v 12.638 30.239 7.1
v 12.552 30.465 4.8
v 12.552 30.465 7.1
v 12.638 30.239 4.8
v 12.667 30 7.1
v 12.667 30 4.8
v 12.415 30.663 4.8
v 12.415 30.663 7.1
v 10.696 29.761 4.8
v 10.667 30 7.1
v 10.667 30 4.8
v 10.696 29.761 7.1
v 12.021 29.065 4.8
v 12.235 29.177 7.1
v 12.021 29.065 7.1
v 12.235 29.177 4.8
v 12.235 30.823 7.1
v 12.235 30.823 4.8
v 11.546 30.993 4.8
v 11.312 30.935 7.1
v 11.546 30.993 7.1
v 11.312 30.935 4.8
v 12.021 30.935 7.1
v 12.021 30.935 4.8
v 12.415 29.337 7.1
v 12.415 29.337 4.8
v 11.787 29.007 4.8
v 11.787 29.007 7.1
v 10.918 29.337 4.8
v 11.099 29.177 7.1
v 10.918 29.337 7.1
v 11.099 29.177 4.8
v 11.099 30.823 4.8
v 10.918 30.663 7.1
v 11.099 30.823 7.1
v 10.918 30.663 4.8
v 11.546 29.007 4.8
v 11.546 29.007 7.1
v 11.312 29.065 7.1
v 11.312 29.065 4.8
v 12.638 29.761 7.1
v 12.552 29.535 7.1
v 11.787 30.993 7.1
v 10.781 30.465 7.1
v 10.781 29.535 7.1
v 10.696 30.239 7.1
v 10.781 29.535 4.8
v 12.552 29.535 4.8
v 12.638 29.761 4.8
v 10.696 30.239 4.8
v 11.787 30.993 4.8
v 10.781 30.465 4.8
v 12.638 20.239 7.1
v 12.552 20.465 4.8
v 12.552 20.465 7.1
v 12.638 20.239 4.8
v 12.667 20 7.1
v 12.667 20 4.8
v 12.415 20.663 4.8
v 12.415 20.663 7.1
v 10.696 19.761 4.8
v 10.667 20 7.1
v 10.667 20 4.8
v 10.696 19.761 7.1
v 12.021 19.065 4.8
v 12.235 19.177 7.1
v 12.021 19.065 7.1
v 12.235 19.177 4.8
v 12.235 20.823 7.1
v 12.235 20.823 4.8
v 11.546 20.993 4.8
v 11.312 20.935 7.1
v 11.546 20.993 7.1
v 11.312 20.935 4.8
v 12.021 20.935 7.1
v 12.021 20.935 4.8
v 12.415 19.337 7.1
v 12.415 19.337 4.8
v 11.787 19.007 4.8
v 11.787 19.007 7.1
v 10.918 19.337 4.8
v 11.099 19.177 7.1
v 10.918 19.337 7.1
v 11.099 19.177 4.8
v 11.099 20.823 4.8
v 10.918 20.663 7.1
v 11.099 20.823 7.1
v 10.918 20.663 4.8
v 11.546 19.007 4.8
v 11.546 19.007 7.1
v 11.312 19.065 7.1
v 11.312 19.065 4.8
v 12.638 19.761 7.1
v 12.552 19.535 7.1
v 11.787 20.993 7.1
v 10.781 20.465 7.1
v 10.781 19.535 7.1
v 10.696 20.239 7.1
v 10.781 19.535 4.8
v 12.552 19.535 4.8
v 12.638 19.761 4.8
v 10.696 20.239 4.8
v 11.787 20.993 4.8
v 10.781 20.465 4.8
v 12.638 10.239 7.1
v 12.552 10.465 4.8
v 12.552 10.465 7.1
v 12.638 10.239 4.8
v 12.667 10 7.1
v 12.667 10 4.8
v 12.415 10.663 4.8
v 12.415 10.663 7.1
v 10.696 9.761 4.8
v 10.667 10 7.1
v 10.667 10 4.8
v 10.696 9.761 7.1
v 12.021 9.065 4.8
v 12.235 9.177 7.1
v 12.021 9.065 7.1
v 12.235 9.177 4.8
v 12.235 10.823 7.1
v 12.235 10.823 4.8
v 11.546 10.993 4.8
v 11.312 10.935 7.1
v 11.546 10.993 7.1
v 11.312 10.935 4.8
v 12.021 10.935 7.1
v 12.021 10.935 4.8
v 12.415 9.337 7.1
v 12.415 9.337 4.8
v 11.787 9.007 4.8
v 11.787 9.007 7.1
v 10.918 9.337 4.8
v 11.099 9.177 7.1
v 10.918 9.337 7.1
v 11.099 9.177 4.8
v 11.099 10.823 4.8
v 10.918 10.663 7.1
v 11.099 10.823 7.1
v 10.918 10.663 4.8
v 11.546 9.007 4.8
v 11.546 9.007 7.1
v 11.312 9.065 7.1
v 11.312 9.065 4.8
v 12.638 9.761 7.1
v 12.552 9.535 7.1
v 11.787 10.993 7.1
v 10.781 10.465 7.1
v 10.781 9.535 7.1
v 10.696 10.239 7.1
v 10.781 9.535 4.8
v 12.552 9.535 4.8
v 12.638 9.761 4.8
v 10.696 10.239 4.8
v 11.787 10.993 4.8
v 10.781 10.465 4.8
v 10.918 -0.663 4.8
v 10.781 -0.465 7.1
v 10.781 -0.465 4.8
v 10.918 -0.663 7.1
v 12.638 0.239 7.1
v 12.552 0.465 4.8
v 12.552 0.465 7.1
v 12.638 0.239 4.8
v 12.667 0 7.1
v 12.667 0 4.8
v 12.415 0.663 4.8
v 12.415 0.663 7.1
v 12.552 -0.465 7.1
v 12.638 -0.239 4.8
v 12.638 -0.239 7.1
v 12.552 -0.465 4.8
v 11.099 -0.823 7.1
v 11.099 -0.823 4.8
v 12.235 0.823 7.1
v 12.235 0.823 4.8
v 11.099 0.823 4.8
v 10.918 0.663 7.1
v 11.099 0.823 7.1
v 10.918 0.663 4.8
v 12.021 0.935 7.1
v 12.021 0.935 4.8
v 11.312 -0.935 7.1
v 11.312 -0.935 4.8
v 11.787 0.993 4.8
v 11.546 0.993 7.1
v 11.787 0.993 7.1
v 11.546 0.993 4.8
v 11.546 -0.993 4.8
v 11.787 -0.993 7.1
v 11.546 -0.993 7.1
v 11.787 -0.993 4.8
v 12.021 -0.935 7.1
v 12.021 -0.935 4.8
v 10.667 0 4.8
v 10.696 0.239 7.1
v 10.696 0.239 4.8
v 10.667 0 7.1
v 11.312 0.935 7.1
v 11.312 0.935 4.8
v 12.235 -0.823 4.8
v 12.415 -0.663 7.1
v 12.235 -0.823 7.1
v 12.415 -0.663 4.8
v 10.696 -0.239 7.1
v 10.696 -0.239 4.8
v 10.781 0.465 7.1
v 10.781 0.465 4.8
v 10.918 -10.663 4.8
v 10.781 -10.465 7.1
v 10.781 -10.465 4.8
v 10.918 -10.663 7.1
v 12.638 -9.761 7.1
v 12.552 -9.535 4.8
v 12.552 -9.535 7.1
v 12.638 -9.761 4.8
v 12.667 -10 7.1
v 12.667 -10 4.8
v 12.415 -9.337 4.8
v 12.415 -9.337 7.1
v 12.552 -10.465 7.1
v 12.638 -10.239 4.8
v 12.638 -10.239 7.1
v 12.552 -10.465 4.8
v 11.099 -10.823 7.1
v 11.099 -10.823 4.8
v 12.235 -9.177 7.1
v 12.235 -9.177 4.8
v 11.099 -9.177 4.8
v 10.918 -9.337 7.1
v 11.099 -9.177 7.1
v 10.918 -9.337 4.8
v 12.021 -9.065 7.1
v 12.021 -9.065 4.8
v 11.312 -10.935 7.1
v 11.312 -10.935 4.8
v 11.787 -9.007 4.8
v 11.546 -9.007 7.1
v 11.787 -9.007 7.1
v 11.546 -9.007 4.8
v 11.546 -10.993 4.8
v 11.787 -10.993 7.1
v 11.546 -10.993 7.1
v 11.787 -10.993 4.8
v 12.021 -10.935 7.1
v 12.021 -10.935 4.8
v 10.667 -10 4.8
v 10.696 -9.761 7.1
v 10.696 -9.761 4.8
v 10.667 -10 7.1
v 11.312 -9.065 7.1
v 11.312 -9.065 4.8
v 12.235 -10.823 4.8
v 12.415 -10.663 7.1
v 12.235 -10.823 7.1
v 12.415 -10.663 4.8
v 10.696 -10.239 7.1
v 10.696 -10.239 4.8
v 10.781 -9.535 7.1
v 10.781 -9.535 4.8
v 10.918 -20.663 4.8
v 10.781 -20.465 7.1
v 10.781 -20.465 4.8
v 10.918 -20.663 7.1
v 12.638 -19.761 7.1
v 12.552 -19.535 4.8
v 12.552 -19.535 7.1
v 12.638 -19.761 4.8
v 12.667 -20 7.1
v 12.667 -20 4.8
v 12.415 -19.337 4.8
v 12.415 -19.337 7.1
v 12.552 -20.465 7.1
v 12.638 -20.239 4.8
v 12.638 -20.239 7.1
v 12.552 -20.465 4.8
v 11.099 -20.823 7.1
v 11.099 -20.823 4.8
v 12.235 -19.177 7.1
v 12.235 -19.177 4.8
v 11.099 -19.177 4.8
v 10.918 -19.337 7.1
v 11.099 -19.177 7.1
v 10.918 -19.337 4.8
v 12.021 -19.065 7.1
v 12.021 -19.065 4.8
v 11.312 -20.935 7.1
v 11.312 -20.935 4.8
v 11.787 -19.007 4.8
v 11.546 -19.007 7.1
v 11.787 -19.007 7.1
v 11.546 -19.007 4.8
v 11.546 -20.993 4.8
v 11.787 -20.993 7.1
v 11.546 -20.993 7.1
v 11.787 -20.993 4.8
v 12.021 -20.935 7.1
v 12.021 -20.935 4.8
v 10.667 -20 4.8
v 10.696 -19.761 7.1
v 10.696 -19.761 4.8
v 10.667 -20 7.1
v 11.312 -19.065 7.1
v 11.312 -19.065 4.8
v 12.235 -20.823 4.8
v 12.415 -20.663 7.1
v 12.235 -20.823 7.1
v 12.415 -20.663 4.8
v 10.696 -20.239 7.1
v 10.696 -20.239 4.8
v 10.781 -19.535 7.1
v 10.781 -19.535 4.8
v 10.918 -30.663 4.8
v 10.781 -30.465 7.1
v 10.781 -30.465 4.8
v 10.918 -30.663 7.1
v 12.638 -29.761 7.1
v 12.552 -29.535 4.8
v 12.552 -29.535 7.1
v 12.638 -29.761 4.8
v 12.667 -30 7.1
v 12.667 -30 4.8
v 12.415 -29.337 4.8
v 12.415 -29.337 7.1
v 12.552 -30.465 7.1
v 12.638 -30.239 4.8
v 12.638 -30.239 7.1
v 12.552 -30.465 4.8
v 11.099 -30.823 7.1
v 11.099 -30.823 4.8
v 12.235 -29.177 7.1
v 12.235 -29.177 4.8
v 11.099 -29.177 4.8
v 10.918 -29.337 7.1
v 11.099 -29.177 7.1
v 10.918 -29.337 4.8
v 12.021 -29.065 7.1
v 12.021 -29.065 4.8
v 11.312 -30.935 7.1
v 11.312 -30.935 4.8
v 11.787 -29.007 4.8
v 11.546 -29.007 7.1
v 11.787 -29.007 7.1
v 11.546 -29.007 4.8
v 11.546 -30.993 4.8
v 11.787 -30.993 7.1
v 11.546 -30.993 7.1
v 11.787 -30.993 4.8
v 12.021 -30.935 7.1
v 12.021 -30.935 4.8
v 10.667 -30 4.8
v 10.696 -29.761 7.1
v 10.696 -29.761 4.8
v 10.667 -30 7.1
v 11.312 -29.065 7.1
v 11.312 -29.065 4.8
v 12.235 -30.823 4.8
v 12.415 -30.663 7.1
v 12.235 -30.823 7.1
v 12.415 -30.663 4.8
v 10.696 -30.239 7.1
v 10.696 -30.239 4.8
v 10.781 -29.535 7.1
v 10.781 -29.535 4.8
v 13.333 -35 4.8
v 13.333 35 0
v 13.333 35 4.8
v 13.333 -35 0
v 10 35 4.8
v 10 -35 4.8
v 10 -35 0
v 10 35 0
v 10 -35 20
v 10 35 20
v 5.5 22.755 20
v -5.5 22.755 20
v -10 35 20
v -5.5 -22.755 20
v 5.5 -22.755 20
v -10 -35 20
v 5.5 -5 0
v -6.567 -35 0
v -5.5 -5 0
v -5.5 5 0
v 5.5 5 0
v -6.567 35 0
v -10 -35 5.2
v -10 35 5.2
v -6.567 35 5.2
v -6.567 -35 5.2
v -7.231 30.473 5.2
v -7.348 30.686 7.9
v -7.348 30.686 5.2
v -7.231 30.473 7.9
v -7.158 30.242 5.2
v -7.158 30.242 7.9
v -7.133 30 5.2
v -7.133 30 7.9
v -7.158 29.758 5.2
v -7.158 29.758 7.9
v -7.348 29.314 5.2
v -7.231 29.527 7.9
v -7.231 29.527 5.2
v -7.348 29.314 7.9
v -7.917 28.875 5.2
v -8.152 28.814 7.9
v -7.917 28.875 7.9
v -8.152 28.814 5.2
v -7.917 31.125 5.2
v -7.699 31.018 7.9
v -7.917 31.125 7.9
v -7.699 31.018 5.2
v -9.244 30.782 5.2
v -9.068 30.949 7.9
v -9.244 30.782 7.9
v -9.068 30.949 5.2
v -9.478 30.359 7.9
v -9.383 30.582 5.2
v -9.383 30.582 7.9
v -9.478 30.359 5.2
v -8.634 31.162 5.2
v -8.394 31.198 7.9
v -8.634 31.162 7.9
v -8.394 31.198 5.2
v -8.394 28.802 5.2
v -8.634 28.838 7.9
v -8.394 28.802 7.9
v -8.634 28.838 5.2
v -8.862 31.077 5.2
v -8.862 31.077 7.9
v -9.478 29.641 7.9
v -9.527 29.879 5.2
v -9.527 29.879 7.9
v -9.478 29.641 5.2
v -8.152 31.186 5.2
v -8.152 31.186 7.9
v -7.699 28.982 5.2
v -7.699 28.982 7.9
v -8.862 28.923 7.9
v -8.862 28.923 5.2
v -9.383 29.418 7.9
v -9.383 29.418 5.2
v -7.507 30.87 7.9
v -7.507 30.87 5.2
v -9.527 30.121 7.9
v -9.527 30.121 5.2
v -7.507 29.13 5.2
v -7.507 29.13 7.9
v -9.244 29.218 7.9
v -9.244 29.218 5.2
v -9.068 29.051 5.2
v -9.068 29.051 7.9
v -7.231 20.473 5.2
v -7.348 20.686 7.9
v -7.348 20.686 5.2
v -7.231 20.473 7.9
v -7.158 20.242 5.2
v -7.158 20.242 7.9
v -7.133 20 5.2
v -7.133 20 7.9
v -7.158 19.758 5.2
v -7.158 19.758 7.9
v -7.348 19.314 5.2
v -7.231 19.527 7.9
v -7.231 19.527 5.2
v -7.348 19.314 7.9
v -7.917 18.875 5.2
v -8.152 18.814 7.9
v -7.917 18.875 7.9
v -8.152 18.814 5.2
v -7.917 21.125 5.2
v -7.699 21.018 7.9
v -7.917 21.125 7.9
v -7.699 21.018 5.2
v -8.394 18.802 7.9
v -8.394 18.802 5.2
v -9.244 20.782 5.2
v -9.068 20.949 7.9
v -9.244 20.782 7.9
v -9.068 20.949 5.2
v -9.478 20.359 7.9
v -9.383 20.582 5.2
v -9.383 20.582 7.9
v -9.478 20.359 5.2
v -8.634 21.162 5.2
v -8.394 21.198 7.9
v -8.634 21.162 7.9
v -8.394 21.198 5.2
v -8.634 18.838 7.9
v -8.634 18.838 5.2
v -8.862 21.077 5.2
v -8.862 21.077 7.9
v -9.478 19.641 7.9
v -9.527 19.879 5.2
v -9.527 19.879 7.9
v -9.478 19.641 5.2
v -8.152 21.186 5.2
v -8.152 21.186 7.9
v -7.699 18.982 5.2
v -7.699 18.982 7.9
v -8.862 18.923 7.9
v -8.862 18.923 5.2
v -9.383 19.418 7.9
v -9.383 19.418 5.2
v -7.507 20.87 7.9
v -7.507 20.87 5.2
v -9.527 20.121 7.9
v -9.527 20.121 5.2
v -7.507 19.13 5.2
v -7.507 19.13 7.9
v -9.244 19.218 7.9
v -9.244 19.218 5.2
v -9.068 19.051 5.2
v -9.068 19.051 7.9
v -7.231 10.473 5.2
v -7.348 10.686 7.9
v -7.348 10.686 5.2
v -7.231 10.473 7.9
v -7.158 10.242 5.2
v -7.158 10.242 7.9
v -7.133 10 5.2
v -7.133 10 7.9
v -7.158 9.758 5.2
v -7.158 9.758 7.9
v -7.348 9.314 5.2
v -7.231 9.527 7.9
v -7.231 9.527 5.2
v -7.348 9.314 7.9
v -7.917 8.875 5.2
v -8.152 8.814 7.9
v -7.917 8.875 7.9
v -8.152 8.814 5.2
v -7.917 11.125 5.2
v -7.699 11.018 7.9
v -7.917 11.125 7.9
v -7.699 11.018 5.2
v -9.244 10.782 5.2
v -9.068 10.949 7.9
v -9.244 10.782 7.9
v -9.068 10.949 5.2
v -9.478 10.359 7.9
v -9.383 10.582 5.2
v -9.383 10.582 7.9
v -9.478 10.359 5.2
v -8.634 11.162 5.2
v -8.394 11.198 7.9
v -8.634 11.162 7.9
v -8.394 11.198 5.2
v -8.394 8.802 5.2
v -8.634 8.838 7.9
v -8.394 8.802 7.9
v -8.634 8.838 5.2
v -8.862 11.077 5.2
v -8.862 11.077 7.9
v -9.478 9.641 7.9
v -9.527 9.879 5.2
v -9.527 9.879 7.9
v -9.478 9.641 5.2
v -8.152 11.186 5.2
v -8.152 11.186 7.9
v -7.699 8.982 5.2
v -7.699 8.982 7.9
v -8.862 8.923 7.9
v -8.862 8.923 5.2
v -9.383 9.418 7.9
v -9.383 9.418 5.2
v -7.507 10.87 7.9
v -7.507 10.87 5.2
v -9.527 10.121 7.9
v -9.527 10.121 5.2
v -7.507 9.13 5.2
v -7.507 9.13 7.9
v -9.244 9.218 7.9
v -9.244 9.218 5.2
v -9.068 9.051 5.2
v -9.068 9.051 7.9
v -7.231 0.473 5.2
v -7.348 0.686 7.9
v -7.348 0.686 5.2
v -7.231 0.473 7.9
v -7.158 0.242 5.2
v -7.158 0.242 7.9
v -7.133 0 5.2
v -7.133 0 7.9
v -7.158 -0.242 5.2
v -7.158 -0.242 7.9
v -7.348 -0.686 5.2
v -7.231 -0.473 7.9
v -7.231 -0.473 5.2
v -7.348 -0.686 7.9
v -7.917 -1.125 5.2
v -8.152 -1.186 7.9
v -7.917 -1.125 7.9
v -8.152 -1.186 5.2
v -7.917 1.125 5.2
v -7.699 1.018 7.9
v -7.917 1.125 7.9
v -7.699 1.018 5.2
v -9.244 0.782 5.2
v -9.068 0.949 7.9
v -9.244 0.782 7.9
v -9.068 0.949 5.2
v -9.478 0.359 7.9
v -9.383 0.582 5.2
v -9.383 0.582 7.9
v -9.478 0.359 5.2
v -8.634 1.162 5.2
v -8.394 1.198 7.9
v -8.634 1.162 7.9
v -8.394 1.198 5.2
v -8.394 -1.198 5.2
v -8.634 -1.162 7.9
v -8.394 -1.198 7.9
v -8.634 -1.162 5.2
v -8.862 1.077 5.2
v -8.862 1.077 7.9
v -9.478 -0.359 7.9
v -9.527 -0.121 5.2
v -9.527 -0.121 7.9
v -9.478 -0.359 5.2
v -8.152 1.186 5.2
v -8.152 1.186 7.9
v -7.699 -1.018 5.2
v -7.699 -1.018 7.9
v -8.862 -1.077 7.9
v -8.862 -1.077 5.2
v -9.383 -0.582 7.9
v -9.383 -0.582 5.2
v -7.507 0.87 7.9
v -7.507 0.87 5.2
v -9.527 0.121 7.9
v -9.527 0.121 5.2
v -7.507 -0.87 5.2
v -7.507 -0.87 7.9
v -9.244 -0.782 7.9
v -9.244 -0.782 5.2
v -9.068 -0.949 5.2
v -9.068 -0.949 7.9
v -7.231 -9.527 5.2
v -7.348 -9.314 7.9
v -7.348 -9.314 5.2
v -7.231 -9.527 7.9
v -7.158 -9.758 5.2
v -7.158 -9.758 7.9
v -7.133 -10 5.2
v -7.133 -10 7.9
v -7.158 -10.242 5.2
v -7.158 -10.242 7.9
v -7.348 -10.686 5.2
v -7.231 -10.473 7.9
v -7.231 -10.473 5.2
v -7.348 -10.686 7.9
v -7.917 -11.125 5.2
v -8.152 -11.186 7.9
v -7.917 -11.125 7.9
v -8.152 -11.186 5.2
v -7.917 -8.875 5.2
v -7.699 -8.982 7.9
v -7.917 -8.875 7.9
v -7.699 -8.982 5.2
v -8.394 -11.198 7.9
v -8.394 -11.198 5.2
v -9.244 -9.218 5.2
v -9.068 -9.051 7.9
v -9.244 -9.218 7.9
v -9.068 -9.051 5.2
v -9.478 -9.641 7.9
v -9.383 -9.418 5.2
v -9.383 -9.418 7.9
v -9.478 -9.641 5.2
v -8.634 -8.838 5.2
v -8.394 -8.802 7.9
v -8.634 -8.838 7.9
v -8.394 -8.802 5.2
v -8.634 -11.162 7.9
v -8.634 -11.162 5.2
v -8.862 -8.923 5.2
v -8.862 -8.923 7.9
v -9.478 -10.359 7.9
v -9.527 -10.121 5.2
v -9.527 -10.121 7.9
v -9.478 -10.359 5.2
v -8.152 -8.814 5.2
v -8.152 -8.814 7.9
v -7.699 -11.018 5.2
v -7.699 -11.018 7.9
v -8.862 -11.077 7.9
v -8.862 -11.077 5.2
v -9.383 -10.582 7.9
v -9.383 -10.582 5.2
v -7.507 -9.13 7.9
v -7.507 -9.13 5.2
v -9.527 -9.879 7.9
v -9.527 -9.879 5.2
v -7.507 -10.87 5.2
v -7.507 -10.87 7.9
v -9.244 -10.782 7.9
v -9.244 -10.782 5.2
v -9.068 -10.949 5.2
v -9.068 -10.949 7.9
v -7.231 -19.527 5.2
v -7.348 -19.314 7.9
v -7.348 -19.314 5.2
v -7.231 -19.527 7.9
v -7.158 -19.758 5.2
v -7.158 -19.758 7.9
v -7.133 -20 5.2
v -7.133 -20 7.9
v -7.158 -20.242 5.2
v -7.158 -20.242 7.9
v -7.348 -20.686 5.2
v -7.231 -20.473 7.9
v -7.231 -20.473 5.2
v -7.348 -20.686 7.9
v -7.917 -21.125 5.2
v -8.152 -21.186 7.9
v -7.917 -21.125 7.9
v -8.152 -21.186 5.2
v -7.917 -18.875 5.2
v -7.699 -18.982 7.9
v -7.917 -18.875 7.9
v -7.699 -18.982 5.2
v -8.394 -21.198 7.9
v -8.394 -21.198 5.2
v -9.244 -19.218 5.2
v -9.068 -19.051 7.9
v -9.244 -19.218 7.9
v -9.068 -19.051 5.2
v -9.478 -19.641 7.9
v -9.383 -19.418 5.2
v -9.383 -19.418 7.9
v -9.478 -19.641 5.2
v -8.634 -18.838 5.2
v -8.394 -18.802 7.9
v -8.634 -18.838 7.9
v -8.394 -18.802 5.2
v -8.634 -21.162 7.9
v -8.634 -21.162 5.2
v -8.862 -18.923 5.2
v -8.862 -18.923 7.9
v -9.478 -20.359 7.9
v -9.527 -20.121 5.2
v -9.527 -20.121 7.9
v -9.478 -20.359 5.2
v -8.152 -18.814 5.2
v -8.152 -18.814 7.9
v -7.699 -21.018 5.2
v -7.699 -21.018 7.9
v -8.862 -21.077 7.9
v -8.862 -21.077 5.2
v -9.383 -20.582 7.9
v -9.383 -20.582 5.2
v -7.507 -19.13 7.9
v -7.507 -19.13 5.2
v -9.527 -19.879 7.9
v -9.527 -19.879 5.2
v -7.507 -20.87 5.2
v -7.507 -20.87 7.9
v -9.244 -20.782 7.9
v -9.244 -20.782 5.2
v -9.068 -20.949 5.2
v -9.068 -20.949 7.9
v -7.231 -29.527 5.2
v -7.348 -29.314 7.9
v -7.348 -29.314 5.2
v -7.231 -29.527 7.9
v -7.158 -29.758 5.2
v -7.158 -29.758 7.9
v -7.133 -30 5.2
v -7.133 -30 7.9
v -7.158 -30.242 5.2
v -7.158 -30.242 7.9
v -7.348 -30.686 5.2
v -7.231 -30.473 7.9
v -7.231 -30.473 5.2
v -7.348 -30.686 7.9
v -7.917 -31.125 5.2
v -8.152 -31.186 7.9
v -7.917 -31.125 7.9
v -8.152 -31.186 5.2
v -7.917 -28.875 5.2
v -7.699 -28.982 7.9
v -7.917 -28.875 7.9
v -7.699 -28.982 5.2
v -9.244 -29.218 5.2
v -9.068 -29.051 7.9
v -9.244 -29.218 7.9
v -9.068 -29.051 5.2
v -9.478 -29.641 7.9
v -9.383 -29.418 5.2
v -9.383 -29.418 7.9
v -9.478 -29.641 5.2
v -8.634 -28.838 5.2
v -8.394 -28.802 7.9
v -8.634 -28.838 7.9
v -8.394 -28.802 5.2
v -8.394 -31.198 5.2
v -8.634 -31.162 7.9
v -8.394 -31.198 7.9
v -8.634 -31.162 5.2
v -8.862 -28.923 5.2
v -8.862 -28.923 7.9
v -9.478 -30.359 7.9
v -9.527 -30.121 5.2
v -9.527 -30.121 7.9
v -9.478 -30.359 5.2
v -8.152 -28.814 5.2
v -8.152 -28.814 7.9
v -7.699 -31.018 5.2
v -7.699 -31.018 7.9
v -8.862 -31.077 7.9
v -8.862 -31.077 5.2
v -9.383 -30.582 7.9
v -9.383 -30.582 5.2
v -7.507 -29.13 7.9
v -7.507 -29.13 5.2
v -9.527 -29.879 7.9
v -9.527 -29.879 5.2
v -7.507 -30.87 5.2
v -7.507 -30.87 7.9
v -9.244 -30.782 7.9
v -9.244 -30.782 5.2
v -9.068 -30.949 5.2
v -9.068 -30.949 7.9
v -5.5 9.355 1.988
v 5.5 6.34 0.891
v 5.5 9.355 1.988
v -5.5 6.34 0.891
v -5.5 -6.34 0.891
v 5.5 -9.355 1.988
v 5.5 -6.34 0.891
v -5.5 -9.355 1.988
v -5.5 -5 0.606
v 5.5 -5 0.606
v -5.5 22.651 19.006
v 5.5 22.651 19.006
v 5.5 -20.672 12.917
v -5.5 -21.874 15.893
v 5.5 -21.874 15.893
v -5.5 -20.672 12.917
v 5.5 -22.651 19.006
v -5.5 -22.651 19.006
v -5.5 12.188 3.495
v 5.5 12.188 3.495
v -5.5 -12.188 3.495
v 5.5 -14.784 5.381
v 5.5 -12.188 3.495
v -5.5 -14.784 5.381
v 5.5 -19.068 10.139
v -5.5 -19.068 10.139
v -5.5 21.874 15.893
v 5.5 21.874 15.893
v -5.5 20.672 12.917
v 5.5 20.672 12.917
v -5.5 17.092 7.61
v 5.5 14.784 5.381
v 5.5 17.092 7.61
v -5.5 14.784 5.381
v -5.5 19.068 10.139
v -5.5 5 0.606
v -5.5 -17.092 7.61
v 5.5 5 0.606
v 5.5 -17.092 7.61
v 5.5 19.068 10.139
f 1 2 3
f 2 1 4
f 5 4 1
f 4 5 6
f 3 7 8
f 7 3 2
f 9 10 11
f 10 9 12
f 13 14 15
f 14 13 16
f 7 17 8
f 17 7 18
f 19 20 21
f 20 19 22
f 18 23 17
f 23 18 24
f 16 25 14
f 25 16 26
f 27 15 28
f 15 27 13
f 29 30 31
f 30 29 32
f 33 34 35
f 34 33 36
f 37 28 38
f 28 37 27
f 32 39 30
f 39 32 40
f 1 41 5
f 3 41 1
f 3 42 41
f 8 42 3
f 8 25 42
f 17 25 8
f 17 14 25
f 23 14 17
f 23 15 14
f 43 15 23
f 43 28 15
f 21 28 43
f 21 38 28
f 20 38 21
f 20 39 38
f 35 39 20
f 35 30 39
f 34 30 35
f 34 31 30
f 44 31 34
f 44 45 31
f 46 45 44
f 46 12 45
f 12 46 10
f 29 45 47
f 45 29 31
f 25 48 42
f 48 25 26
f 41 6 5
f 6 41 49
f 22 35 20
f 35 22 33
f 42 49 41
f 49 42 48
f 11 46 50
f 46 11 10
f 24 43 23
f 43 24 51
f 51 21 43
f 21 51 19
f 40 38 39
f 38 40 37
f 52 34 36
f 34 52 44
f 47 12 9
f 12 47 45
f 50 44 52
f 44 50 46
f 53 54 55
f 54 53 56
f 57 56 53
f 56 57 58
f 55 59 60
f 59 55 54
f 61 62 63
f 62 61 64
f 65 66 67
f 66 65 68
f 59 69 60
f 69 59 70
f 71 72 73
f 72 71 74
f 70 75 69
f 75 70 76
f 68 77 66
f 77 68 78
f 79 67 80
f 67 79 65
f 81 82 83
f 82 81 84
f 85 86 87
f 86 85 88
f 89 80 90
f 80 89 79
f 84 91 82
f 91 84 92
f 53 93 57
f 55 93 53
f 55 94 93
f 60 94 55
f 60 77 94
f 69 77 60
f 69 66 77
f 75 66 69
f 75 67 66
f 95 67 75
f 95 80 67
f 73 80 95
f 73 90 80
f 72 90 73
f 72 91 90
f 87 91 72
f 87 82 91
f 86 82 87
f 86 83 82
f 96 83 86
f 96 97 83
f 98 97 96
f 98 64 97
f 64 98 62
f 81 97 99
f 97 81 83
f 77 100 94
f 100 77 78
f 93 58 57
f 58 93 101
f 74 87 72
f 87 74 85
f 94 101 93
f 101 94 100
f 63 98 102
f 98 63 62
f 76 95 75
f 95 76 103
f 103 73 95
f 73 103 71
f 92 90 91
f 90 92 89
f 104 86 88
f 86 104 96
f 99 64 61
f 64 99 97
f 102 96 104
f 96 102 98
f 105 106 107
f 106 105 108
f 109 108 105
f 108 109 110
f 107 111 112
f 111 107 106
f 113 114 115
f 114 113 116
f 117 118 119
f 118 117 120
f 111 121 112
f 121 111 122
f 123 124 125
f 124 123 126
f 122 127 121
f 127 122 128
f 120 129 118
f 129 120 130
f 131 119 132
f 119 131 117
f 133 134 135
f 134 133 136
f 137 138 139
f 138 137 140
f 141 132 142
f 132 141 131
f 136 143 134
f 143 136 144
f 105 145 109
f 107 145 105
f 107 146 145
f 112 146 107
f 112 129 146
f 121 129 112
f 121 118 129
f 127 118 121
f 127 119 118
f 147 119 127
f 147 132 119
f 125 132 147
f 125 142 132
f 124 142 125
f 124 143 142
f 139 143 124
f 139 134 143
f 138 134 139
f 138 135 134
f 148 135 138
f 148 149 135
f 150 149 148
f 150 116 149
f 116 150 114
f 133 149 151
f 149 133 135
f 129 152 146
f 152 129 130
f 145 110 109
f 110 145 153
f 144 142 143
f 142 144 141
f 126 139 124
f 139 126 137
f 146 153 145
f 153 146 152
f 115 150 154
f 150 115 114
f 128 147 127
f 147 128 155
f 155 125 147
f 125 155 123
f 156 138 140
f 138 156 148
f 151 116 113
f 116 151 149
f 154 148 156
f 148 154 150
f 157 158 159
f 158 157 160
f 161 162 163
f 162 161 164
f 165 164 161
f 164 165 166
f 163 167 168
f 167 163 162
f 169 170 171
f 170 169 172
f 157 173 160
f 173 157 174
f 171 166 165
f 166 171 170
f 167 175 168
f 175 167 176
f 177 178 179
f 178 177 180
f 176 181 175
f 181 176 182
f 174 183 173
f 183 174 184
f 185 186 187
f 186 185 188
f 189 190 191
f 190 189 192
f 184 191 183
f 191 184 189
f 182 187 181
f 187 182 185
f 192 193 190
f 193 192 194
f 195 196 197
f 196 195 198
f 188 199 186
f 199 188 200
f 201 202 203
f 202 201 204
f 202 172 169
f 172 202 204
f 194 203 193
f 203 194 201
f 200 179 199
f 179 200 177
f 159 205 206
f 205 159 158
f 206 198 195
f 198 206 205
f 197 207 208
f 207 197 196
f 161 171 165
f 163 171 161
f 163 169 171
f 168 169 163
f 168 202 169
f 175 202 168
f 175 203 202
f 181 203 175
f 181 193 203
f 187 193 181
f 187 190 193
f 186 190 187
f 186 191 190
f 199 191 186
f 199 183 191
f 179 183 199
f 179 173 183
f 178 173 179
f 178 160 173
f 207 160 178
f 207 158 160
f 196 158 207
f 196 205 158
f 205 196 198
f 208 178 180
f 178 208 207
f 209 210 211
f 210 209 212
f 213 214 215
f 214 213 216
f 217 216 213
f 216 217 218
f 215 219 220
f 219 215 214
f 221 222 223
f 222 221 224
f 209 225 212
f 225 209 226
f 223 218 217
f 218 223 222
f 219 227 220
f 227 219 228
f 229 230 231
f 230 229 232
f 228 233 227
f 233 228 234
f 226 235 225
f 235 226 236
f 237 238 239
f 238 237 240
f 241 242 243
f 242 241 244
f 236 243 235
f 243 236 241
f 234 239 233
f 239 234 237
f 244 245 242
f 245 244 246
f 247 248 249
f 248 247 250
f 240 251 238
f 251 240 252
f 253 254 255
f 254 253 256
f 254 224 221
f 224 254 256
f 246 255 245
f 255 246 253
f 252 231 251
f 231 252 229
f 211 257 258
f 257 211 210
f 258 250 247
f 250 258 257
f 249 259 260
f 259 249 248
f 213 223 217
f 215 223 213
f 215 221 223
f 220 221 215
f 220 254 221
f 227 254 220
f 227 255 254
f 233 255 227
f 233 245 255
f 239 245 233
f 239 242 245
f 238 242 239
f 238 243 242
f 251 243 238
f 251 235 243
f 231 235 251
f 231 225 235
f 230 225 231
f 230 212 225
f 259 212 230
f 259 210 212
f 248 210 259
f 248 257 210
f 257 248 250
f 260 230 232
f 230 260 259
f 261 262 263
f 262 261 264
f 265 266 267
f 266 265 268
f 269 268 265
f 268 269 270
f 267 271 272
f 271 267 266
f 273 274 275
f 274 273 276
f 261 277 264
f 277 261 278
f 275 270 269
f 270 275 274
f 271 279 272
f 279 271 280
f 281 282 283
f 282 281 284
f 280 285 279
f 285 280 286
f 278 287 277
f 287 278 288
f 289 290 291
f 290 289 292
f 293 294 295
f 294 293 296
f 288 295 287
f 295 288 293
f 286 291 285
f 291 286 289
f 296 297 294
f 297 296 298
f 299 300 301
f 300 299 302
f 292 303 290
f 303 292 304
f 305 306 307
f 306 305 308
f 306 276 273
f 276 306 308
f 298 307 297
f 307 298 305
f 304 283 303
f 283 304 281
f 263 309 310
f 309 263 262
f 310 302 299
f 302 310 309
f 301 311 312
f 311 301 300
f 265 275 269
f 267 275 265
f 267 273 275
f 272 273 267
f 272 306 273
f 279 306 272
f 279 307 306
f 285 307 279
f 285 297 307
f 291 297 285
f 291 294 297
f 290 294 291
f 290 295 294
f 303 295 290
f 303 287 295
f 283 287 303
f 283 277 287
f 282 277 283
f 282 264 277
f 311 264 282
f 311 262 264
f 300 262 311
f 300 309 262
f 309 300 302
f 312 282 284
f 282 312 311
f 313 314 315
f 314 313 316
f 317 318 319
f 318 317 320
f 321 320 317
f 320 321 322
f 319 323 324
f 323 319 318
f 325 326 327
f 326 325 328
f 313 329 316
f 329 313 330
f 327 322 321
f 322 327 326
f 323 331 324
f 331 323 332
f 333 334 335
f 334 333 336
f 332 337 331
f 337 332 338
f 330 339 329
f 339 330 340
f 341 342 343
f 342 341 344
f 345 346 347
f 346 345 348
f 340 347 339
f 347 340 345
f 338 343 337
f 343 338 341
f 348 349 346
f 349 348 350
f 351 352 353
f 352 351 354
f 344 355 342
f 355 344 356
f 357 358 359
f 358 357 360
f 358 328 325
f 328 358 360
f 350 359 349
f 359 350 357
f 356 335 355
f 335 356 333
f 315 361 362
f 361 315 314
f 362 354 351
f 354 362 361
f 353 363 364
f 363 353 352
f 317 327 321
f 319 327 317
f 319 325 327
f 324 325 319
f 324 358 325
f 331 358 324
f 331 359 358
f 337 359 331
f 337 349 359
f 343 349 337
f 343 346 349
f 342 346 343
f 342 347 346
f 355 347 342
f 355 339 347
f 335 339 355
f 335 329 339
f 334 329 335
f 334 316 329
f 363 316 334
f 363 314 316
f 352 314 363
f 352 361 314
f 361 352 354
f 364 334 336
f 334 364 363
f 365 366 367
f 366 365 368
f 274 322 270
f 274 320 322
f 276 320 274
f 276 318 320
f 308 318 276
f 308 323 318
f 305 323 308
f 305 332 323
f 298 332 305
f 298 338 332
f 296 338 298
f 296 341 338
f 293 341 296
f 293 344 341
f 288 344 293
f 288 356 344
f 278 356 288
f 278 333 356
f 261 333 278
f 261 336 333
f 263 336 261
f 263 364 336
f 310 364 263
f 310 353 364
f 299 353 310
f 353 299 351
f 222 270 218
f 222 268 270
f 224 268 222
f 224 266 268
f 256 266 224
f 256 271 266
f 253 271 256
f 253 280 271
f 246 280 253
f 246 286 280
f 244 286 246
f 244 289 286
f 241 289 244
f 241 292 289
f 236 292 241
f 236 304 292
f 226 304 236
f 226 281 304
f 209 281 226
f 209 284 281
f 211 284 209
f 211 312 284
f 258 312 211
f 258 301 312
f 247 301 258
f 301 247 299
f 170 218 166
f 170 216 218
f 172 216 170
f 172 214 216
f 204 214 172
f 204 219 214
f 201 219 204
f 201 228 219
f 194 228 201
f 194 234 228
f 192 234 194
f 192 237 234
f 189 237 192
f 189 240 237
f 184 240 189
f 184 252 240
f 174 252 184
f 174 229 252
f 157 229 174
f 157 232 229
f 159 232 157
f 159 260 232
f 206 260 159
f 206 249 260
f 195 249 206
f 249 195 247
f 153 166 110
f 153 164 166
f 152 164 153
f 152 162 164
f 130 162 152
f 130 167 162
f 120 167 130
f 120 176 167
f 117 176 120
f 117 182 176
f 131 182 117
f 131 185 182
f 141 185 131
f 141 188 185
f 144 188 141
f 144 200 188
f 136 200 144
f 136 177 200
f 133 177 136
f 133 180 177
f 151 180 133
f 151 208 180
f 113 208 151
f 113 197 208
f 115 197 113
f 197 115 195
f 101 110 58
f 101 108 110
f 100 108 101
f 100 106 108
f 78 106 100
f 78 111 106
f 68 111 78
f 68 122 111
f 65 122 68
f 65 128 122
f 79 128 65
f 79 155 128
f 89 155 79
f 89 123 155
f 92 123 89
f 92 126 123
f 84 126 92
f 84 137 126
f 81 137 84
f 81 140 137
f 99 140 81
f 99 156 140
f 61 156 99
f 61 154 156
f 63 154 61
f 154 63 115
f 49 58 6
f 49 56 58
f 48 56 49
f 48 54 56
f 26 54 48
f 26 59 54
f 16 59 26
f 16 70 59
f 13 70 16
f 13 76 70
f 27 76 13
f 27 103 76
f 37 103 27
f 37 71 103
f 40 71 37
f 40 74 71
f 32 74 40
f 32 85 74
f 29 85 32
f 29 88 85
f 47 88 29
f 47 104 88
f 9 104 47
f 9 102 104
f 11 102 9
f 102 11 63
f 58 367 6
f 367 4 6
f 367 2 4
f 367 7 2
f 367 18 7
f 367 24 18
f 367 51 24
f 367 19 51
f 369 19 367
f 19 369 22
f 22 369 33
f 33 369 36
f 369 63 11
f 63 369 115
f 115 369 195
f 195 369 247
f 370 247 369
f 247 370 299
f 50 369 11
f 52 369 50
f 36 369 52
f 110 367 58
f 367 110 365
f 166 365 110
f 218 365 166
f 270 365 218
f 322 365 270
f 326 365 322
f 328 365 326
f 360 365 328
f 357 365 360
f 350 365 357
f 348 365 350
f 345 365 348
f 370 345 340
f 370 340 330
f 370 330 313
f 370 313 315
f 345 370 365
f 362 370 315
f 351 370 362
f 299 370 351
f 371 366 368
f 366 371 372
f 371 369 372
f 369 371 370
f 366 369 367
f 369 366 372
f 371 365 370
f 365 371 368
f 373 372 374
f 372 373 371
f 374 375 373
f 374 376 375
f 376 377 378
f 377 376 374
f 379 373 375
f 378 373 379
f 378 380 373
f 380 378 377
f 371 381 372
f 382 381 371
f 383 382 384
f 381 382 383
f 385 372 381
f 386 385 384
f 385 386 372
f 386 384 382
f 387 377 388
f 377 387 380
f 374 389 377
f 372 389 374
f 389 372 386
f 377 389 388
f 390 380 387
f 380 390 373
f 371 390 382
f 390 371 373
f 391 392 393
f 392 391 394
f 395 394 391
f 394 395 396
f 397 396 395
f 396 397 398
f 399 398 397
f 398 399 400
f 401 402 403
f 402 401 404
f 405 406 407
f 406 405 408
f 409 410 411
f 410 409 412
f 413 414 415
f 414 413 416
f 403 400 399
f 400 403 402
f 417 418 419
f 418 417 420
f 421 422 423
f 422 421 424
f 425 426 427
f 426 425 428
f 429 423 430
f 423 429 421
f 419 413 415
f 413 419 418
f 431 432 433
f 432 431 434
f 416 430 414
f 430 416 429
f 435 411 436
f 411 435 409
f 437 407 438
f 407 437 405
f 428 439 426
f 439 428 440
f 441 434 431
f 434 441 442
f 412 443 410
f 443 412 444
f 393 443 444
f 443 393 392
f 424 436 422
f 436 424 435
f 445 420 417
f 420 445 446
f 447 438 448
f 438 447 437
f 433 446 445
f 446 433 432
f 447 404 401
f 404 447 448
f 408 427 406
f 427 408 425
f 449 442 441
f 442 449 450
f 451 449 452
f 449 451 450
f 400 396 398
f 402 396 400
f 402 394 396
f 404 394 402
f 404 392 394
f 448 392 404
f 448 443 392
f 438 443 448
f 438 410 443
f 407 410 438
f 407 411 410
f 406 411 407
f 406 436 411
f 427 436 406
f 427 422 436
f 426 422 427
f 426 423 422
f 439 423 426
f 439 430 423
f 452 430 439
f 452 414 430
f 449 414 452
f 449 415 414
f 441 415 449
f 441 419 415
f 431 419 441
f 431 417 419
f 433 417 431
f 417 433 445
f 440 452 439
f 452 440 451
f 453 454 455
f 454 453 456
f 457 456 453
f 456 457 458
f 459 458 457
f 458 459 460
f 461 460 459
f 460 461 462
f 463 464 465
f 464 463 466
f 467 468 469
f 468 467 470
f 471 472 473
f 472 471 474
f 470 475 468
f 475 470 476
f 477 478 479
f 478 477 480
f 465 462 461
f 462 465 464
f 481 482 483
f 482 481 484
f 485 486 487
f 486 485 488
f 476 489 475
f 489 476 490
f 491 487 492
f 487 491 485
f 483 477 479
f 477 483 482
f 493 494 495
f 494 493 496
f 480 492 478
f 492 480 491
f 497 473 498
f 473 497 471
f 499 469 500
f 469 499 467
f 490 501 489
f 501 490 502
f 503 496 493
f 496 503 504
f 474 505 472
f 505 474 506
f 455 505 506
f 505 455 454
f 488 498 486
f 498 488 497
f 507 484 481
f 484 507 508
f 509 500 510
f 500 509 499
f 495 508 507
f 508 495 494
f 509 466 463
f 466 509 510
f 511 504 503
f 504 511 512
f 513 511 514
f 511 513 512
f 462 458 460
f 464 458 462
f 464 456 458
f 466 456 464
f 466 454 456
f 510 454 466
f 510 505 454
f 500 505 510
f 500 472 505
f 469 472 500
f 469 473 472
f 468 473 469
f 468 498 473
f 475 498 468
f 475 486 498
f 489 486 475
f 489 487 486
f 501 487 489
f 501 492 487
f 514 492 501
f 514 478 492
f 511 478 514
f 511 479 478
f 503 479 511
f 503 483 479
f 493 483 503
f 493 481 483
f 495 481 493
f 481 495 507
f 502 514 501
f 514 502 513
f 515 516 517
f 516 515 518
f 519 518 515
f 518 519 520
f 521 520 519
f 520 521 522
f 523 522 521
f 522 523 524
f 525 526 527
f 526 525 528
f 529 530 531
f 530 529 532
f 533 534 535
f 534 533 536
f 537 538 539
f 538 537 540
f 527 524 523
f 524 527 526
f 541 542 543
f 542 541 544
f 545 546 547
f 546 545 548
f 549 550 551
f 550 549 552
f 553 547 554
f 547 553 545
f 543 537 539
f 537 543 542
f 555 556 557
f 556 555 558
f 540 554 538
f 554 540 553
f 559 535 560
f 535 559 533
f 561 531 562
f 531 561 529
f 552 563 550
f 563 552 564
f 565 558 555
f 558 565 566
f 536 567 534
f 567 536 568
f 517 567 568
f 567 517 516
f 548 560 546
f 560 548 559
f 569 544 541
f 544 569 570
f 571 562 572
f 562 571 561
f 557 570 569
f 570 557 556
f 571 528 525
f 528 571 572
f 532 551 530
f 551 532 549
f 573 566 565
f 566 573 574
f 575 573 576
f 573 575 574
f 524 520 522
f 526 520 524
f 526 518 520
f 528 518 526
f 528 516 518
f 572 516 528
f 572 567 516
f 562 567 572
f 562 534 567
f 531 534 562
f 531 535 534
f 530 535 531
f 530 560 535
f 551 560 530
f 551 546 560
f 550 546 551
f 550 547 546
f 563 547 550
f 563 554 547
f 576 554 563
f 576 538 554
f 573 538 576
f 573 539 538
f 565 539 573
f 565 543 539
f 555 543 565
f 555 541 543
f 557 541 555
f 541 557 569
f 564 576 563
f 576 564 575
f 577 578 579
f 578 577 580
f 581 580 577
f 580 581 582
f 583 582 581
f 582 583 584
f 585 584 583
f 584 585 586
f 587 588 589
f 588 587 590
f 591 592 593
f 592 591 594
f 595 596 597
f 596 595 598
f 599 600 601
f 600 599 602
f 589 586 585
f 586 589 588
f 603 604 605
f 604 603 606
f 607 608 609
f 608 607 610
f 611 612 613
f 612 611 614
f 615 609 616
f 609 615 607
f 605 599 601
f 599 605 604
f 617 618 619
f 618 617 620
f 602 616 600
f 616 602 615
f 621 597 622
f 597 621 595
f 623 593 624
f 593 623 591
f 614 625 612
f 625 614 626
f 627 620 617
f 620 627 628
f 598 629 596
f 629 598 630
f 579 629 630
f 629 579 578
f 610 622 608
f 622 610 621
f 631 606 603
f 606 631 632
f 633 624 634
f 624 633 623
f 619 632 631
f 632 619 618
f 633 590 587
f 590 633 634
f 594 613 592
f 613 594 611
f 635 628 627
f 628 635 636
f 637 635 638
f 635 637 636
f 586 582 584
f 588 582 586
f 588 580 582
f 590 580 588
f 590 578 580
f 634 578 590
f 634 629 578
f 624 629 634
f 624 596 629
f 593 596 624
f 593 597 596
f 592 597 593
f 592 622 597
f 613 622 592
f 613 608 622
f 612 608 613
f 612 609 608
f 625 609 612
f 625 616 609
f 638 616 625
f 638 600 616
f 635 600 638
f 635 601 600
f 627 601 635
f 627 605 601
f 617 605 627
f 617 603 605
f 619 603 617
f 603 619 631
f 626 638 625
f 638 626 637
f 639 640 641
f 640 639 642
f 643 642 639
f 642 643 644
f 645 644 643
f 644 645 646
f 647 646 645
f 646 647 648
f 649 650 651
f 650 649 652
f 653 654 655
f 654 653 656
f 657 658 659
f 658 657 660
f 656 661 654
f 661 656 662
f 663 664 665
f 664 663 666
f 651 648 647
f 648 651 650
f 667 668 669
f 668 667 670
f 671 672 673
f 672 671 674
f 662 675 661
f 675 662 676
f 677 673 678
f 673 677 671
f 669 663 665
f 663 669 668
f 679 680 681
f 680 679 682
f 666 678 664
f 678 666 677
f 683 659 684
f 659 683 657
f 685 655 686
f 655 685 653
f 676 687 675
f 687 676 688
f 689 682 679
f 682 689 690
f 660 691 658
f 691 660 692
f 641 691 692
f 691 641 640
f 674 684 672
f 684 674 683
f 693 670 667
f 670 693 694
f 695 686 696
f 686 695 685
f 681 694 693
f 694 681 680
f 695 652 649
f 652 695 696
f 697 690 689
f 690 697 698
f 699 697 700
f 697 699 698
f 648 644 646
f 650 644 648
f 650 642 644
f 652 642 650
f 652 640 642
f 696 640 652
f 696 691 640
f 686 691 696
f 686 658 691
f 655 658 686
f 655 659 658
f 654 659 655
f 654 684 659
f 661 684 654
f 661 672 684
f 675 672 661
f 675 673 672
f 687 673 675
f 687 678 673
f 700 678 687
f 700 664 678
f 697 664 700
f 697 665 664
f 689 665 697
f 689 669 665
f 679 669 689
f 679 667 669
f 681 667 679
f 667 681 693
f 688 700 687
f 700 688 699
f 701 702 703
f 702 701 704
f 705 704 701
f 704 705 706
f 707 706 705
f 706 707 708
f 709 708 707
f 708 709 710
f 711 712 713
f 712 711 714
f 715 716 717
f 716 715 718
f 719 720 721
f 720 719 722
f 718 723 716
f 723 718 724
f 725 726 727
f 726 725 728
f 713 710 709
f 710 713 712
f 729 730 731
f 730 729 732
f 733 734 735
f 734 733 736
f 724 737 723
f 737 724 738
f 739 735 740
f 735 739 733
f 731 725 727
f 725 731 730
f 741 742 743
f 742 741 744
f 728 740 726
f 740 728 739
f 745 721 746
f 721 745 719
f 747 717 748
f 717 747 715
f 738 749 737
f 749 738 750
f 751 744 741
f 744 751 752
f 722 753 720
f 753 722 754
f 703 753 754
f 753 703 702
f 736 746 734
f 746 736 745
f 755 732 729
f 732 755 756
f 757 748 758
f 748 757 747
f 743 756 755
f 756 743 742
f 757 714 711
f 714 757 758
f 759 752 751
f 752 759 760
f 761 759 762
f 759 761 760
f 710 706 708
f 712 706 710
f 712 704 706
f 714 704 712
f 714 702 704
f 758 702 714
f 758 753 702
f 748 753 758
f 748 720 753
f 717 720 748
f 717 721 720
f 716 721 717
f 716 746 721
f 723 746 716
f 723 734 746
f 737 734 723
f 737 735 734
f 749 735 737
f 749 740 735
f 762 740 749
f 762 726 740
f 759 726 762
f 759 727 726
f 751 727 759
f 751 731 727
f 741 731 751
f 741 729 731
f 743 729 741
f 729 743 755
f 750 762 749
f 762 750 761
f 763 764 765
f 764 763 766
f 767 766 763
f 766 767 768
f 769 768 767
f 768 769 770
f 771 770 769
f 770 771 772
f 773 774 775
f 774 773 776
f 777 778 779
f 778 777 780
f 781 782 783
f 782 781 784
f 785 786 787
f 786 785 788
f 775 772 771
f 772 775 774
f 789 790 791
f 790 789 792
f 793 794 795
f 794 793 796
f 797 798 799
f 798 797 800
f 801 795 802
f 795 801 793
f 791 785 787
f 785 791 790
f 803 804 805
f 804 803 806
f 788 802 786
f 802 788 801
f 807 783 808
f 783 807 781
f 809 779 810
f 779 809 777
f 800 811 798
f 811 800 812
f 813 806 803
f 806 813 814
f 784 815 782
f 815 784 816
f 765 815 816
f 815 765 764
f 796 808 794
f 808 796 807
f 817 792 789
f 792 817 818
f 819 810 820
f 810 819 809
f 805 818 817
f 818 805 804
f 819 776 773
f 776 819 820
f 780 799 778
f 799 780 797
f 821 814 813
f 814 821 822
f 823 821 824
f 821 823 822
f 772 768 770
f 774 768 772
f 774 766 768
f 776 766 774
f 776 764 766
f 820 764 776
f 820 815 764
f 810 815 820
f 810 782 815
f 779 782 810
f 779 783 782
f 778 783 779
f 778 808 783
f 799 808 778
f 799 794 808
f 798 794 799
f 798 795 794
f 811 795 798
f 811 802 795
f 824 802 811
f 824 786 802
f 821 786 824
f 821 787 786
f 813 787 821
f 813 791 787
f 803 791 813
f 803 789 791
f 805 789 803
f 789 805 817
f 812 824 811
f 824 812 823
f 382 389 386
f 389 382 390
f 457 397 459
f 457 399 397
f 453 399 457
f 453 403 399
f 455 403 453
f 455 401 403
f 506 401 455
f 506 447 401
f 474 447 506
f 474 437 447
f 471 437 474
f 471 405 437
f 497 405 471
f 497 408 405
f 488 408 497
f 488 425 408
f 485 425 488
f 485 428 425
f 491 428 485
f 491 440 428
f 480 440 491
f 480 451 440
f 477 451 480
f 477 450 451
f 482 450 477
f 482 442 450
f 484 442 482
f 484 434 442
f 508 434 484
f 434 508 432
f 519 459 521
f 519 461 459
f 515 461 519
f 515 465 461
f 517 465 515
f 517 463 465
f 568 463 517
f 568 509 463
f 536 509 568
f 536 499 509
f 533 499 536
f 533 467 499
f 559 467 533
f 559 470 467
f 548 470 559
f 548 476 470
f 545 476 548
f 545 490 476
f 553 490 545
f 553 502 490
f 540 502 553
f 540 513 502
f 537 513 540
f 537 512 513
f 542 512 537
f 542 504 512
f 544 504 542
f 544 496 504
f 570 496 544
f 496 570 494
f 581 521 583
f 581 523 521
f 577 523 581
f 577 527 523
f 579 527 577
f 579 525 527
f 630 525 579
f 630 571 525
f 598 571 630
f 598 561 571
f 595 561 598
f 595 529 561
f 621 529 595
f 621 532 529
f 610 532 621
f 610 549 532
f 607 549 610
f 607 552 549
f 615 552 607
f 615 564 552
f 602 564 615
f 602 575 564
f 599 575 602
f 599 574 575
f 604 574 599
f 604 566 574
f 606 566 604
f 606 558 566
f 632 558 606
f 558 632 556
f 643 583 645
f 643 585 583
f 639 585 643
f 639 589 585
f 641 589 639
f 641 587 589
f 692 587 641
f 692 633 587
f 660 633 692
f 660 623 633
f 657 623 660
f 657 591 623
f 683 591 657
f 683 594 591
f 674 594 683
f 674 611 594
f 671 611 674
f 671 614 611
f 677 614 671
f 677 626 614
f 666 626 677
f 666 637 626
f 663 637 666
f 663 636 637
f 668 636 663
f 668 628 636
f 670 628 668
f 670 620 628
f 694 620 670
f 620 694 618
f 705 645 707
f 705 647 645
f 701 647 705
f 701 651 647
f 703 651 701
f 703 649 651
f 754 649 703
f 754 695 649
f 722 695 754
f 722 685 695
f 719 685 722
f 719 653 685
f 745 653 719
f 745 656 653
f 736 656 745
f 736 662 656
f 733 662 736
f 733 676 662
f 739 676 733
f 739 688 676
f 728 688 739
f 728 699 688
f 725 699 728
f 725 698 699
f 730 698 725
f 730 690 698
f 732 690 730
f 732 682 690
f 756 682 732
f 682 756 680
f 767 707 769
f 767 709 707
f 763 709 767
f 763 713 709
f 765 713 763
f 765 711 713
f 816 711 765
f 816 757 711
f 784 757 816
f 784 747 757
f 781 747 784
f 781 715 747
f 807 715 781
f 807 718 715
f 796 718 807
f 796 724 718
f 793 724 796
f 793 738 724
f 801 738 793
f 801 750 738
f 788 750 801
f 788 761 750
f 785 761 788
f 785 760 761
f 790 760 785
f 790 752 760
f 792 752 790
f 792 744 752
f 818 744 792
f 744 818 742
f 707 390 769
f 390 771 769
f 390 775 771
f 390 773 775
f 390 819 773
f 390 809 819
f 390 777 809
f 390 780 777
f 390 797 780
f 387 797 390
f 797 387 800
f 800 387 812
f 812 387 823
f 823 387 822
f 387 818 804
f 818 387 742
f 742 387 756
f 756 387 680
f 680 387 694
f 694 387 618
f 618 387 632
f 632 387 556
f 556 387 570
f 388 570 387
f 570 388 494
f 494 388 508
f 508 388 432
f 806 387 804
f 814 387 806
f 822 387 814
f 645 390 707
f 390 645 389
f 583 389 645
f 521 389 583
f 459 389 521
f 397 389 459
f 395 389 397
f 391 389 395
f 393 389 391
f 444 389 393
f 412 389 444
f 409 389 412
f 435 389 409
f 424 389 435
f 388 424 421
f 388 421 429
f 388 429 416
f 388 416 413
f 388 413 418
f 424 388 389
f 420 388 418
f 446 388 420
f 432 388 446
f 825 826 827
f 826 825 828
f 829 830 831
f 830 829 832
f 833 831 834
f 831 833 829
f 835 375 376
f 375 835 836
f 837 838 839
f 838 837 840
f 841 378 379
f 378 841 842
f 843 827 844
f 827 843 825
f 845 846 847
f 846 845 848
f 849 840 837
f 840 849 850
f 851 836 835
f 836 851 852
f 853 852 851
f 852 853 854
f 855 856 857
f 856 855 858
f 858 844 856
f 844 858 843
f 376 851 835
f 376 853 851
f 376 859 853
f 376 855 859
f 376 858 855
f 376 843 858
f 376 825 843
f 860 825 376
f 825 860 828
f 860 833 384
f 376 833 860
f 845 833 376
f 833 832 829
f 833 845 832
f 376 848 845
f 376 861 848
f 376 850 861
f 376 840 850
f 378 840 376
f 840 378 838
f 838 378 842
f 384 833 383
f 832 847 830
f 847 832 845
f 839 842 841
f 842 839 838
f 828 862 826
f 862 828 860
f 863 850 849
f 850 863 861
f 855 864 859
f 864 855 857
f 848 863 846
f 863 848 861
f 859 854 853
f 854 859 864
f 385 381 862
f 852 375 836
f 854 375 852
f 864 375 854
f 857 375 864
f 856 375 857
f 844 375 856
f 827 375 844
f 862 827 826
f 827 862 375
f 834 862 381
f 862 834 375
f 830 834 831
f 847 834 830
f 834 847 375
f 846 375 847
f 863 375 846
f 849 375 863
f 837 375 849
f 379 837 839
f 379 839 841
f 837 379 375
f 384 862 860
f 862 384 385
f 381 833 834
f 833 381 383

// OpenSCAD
// file: ../base.scad
// The x-axis has the connection to the other units
// There is one connection peg per x
// Minimum unit is x=1, y=1, z=1
// If you have x=1, then the x-axis will be extended 
// with 1/3 for the connectors 
// the female version will can still be used and therefore
// counted within the unit

/* [Setup Parameters] */
$fa = 8;
$fs = 0.25;


module base(x,y,z) {
    u = 10;
    t = u;

    width = u*x;
    depth = u*y;
    height = t*z;

    margin = 0.2;

    male_connection_d = 2;
    female_connection_d = male_connection_d+margin*2;
    connector_width = u/3;
    connector_height = t/2;

    module connector(width, height, cylinder_height, cylinder_d) {
        translate([0, 0, 0])
        union() {
            translate([0, 0, height/2])
            cube([width, depth, height], center=true);
            for (i = [1:1:y]) {
                translate([0, depth/2+u/2-(u)*i, height-0.1])
                cylinder(h=cylinder_height+0.1, d=cylinder_d);
            }
        }
    }

    module male_connector() {
        width = connector_width;
        height = connector_height-margin;
        cylinder_height = connector_height/2-margin;
        cylinder_d = male_connection_d;

        connector(width, height, cylinder_height, cylinder_d);
    }

    module inverted_female_connecor() {
        width = connector_width+margin;
        height = connector_height+margin;
        cylinder_height = connector_height/2+margin;
        cylinder_d = female_connection_d;

        connector(width, height, cylinder_height, cylinder_d);
    }

    difference() {
        union() {
            translate([0, 0, height/2])
            cube([width, depth, height], center=true);
            translate([width/2+connector_width/2, 0, 0])
            male_connector();
        }
        union() {
            translate([-width/2+connector_width/2, 0, 0])
            inverted_female_connecor();
        }
    }
}


//base(2,7,2);

module connector(y) {
    u = 10;
}
// main file
include <../base.scad>

wick_d = 46;
wick_t = 11;

xunits = 2;
yunits = 7;
zunits = 2;

difference() {
    base(xunits,yunits,zunits);

    union() {
        translate([-wick_t/2, 0, wick_d/2])
        rotate([0, 90, 0])
        cylinder(h=wick_t, d=wick_d);

        translate([-wick_t/2, -5, 0])
        cube([wick_t, 10, wick_d]);
    }
}
